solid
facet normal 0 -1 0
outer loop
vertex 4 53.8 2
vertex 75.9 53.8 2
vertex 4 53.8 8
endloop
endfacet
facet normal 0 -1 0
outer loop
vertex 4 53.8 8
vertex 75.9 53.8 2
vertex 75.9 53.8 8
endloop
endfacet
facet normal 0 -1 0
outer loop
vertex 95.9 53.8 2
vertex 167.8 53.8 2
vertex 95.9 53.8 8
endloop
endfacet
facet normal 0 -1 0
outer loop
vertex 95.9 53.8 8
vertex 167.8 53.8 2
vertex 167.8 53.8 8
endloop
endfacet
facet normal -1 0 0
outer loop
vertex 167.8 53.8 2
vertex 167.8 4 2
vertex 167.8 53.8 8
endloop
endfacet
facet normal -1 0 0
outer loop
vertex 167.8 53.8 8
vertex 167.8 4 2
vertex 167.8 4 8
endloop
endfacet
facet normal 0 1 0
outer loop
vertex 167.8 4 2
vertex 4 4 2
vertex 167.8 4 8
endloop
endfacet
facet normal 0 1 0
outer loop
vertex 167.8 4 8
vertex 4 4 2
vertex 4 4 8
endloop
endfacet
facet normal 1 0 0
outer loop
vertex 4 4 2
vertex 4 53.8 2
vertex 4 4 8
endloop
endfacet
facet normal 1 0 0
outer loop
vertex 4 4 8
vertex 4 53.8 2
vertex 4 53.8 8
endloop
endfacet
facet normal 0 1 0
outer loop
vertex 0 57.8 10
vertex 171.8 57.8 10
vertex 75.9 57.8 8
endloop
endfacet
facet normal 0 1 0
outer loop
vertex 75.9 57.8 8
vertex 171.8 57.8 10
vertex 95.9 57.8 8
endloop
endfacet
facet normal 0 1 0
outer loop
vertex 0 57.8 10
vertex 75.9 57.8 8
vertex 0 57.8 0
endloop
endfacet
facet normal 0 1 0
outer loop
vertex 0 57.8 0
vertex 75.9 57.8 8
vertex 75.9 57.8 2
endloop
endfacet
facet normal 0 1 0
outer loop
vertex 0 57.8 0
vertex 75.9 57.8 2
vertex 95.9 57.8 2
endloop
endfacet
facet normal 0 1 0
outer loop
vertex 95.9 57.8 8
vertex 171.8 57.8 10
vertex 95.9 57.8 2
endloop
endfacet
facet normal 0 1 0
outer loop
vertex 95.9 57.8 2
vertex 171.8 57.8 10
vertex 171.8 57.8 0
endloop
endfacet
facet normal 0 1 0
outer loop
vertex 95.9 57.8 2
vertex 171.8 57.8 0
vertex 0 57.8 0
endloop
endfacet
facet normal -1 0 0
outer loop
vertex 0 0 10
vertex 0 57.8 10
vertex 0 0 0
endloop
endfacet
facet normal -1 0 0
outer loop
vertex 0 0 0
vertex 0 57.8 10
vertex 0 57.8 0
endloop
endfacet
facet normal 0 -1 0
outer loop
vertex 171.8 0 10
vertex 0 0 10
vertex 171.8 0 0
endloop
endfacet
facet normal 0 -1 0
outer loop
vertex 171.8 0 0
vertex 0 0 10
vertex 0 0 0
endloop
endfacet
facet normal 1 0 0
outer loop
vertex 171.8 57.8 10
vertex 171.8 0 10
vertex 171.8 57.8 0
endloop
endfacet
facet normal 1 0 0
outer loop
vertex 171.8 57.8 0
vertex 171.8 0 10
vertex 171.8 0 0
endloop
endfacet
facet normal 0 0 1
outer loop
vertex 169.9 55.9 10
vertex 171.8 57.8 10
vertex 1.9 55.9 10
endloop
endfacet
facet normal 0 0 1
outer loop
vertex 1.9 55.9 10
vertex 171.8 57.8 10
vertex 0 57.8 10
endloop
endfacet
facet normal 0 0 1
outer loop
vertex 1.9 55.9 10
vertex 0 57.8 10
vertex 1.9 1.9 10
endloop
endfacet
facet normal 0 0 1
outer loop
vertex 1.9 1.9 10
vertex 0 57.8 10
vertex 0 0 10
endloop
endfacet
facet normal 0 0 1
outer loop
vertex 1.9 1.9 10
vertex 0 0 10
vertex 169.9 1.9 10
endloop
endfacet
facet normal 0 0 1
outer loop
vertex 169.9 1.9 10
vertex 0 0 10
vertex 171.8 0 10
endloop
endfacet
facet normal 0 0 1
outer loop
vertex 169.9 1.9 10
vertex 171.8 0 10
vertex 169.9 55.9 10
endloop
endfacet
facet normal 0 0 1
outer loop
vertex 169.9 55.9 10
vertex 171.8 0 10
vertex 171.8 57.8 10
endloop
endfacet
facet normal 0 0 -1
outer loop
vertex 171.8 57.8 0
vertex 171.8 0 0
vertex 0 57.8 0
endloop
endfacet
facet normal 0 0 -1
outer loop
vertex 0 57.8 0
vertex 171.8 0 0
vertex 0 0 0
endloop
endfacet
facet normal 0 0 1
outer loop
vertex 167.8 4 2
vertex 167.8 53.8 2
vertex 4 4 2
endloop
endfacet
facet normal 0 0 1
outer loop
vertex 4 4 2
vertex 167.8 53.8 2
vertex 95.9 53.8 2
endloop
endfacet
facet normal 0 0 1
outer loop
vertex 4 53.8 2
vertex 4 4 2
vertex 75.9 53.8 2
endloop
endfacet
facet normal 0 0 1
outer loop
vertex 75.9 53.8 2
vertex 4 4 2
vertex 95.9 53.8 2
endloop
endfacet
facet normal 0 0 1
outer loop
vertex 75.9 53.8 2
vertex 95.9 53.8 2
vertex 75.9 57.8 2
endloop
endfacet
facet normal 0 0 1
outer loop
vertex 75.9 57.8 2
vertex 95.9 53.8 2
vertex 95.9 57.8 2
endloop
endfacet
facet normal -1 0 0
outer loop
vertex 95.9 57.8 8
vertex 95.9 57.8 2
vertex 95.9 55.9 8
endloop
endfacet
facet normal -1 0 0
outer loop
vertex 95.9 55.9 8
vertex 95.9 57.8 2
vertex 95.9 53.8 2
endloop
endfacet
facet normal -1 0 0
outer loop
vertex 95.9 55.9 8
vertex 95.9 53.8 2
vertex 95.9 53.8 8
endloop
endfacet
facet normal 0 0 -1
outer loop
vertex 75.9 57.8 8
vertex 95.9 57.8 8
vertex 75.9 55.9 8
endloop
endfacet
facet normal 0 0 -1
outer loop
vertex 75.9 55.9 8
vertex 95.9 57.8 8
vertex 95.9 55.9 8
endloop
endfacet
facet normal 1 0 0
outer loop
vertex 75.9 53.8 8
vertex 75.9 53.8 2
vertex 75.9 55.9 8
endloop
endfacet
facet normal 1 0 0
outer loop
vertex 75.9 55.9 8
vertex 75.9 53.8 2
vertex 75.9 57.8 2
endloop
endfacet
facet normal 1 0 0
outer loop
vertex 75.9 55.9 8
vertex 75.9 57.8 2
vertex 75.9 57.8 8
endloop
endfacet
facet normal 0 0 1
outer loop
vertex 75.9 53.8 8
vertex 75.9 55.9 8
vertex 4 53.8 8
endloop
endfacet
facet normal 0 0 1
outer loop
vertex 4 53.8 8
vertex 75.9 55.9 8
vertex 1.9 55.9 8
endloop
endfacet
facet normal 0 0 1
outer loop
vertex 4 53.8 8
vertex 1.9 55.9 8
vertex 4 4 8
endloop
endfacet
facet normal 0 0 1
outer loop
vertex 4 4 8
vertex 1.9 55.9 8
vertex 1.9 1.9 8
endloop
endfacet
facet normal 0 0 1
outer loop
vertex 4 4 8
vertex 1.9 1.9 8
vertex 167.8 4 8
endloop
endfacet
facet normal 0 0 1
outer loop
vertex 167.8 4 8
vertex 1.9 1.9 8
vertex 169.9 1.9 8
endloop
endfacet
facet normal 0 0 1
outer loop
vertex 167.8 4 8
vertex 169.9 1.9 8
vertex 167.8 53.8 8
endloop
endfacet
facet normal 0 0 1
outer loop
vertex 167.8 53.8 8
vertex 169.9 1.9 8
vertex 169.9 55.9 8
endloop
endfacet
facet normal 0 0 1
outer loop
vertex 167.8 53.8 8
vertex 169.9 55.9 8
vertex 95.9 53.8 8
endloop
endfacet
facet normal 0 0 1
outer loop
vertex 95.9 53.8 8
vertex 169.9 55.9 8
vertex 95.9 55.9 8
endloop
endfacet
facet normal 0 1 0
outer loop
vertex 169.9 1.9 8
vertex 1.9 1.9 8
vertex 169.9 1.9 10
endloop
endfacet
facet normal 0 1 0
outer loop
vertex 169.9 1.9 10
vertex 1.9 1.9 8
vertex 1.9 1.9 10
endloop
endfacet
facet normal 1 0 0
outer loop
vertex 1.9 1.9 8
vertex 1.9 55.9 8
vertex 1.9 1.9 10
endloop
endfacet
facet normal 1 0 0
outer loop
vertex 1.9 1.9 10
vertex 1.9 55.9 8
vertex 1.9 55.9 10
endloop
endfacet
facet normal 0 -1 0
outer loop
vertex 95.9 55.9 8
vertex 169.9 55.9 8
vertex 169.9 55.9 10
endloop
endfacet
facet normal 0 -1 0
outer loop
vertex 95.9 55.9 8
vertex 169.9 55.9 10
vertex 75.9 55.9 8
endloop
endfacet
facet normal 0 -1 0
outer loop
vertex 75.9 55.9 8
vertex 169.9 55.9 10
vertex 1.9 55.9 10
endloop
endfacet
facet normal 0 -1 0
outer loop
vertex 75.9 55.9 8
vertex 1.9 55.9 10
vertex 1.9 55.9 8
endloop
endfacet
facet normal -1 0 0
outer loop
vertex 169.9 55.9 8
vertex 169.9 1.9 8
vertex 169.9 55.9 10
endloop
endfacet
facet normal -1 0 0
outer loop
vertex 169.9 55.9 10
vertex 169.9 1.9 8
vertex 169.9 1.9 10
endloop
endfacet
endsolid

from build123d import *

# Parameters (mm, degrees)
SKETCH1_W               = 171.8
SKETCH1_H               = 57.8
MAIN_BODY_DEPTH         = 10
SKETCH2_W               = 163.8
SKETCH2_H               = 49.8
MAIN_CUTOUT_DEPTH       = 8
SKETCH3_W               = 6
SKETCH3_H               = 20
CABLE_PASSTHROUGH_DEPTH = 4
SKETCH9_W               = 168
SKETCH9_H               = 54
LID_CUTOUT_DEPTH        = 2


with BuildPart() as part:
    # Sketch1 → Main_Body (new body)
    with BuildSketch(Plane.XY):
        with Locations((85.9, 28.9)):
            Rectangle(SKETCH1_W, SKETCH1_H)
    extrude(amount=MAIN_BODY_DEPTH)

    # Sketch2 → Main_Cutout (cut)
    with BuildSketch(Plane.XY.offset(10)):
        with Locations((85.9, 28.9)):
            Rectangle(SKETCH2_W, SKETCH2_H)
    extrude(amount=-MAIN_CUTOUT_DEPTH, mode=Mode.SUBTRACT)

    # Sketch3 → Cable_Passthrough (cut)
    with BuildSketch(Plane(origin=(53.8, 57.8, 0), x_dir=(0, 0, 1), z_dir=(0, -1, 0))):
        with Locations((5, -32.1)):
            Rectangle(SKETCH3_W, SKETCH3_H)
    extrude(amount=CABLE_PASSTHROUGH_DEPTH, mode=Mode.SUBTRACT)

    # Sketch9 → Lid_Cutout (cut)
    with BuildSketch(Plane.XY.offset(10)):
        with Locations((85.9, 28.9)):
            Rectangle(SKETCH9_W, SKETCH9_H)
    extrude(amount=-LID_CUTOUT_DEPTH, mode=Mode.SUBTRACT)


solid = part.part
